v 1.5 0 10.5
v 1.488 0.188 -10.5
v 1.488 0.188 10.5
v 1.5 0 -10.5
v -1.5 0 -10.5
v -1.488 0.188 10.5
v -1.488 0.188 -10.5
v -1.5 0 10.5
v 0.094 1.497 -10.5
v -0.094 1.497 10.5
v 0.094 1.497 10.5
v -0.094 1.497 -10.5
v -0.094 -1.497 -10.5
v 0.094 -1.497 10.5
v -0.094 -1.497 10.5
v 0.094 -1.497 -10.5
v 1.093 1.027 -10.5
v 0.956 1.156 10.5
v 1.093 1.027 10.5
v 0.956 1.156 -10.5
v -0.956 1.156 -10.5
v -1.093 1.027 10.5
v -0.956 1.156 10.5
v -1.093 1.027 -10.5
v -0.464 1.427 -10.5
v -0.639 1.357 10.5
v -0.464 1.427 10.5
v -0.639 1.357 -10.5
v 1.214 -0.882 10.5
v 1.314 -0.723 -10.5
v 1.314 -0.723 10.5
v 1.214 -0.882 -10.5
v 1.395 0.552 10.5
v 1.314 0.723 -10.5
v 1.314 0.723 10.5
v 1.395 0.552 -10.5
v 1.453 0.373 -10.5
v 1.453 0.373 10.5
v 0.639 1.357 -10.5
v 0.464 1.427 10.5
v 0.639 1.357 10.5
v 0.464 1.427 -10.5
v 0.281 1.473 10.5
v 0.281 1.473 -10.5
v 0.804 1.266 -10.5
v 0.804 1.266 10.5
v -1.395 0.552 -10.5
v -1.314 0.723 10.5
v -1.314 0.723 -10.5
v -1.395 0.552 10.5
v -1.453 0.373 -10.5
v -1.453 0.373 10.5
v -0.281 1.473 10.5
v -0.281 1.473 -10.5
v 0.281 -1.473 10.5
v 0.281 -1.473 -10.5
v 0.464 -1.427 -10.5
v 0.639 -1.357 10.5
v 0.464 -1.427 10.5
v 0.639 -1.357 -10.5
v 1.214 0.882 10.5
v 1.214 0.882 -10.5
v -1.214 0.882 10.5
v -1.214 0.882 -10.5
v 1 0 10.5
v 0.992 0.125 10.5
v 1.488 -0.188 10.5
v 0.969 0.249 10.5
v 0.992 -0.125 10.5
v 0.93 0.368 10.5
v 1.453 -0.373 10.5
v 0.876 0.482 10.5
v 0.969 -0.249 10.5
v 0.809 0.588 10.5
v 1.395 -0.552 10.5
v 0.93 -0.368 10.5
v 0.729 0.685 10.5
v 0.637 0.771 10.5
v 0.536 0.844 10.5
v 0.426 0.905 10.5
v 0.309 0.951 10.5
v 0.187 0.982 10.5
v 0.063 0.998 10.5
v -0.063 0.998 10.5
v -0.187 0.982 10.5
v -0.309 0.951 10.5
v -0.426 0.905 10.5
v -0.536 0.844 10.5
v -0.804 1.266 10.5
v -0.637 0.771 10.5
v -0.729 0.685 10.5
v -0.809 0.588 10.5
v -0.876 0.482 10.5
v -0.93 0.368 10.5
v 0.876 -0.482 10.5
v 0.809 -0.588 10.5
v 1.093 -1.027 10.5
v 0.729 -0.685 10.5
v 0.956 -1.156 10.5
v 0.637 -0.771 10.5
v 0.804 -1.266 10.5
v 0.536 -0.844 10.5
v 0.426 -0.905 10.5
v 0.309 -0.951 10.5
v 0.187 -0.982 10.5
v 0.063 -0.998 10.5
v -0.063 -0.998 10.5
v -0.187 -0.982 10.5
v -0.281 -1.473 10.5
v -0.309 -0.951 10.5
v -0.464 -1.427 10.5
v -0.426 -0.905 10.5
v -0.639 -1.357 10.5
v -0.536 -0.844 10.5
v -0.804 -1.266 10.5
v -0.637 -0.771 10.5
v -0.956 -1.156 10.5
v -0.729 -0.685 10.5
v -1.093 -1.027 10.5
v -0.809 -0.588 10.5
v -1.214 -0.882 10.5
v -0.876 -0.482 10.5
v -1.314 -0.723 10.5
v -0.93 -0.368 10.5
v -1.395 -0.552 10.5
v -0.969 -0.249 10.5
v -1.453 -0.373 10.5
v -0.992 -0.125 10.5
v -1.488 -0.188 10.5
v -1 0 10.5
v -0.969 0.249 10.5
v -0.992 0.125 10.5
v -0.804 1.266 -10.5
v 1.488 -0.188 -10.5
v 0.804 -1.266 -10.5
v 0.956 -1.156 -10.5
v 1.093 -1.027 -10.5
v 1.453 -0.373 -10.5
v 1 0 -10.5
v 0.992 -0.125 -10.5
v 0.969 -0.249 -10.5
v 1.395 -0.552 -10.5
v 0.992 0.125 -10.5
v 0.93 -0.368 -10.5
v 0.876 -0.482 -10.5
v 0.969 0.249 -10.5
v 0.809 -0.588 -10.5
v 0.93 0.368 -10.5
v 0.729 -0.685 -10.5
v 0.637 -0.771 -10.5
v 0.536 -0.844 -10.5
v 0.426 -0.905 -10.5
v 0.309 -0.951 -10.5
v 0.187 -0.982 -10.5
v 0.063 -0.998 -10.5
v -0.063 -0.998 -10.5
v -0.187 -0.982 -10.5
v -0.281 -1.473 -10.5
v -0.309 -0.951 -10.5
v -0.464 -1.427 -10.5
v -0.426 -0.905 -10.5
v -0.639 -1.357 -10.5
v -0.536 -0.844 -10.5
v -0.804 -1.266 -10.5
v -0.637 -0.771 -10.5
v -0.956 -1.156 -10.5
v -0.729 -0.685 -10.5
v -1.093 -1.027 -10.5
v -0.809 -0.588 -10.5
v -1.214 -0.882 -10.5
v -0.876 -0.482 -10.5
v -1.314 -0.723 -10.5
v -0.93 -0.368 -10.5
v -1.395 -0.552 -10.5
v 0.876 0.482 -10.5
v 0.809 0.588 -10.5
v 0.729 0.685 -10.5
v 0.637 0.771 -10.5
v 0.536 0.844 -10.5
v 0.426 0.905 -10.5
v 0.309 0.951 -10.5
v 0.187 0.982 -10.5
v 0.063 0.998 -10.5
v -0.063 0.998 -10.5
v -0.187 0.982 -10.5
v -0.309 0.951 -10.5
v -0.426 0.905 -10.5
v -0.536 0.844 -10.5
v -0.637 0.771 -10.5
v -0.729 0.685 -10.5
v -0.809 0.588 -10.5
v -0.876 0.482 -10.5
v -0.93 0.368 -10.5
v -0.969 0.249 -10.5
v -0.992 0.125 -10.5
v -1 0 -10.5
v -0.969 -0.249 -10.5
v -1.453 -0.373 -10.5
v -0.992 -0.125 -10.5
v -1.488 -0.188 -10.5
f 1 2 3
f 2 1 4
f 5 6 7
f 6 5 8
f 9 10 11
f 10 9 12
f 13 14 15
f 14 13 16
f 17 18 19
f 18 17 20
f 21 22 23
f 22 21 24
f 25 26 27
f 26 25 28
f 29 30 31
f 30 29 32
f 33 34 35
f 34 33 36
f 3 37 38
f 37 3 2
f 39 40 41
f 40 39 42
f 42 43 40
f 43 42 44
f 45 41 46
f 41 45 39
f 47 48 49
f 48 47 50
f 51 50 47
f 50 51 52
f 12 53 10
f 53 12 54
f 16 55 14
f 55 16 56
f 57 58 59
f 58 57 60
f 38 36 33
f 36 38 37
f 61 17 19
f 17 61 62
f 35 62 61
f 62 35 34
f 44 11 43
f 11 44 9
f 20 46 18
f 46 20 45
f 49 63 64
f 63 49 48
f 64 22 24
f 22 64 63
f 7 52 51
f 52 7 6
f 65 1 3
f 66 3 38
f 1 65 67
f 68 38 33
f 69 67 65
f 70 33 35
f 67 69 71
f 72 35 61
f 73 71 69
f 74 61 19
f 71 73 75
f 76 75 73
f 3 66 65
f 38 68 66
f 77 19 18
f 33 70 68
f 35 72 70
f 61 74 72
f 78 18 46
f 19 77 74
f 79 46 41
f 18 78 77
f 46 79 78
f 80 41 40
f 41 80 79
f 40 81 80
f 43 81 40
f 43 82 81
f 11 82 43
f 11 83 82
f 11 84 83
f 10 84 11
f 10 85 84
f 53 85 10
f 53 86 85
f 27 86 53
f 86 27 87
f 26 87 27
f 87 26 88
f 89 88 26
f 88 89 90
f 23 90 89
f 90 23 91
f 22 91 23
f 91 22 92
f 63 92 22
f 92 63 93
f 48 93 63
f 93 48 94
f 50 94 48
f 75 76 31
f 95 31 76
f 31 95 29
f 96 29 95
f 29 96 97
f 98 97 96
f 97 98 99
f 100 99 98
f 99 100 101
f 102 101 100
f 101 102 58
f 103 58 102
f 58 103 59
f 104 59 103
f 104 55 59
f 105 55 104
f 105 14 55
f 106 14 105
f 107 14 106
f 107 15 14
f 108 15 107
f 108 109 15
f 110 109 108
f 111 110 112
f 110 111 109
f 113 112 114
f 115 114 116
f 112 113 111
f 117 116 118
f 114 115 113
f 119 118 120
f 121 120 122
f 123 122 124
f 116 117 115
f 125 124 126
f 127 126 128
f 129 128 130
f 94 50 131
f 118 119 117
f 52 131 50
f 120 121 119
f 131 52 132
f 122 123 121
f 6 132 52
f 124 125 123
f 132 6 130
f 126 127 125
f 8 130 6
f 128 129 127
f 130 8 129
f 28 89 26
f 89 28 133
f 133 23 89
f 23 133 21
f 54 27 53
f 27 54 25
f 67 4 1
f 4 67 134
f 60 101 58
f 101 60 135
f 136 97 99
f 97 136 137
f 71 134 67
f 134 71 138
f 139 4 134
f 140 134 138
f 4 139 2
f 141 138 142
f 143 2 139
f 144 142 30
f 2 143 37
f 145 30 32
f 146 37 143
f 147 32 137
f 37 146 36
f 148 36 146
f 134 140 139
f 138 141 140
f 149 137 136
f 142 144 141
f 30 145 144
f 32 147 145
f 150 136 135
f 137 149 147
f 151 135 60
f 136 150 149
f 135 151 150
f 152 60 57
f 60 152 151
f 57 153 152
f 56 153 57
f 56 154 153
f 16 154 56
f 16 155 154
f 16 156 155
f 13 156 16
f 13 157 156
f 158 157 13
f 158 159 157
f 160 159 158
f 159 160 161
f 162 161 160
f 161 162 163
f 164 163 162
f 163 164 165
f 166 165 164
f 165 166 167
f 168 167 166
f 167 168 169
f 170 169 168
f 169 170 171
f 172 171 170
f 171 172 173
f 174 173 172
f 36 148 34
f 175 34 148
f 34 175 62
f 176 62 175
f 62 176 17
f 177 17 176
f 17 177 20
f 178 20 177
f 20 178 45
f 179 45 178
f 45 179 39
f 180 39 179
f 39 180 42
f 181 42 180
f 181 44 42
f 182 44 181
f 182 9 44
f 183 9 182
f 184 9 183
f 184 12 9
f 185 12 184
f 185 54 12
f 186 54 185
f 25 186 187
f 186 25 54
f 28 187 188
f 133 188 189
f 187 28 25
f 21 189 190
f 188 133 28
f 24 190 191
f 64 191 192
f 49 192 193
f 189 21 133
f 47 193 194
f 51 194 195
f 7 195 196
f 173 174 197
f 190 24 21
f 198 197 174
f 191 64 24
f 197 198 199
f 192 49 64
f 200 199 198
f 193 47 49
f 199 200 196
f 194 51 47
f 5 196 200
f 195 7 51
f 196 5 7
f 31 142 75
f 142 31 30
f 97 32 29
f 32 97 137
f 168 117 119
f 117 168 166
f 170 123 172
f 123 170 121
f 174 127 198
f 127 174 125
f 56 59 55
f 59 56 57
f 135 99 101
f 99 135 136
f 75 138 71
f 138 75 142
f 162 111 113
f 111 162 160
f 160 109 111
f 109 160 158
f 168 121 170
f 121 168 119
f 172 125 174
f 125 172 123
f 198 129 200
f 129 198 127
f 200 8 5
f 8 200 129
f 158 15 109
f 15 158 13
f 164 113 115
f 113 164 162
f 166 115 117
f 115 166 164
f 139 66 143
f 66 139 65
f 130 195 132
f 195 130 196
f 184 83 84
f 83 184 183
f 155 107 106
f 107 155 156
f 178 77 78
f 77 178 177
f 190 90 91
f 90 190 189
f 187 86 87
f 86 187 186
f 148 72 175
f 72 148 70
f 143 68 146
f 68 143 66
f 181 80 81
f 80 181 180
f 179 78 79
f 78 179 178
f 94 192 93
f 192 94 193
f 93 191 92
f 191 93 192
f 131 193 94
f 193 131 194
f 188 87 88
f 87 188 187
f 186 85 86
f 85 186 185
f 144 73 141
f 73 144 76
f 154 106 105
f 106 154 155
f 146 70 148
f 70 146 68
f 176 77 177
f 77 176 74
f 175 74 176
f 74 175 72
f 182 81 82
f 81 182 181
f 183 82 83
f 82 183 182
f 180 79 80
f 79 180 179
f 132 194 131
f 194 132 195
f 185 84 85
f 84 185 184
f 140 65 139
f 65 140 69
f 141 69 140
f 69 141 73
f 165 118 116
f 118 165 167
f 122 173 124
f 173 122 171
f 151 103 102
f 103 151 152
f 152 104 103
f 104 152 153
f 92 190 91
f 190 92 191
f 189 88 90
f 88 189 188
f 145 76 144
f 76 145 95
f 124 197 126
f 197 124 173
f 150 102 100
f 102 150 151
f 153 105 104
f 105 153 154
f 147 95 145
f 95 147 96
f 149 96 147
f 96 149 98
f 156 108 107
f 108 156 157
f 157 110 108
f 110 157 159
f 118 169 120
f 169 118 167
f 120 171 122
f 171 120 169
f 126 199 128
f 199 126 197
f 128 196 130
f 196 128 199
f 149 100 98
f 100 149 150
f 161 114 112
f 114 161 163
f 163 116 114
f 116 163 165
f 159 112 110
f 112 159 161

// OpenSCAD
$fn = 50;


difference() {
	union() {
		translate(v = [0, 0, -10.5000000000]) {
			cylinder(h = 21, r = 1.5000000000);
		}
	}
	union() {
		translate(v = [0, 0, -100.0000000000]) {
			cylinder(h = 200, r = 1.0000000000);
		}
	}
}
